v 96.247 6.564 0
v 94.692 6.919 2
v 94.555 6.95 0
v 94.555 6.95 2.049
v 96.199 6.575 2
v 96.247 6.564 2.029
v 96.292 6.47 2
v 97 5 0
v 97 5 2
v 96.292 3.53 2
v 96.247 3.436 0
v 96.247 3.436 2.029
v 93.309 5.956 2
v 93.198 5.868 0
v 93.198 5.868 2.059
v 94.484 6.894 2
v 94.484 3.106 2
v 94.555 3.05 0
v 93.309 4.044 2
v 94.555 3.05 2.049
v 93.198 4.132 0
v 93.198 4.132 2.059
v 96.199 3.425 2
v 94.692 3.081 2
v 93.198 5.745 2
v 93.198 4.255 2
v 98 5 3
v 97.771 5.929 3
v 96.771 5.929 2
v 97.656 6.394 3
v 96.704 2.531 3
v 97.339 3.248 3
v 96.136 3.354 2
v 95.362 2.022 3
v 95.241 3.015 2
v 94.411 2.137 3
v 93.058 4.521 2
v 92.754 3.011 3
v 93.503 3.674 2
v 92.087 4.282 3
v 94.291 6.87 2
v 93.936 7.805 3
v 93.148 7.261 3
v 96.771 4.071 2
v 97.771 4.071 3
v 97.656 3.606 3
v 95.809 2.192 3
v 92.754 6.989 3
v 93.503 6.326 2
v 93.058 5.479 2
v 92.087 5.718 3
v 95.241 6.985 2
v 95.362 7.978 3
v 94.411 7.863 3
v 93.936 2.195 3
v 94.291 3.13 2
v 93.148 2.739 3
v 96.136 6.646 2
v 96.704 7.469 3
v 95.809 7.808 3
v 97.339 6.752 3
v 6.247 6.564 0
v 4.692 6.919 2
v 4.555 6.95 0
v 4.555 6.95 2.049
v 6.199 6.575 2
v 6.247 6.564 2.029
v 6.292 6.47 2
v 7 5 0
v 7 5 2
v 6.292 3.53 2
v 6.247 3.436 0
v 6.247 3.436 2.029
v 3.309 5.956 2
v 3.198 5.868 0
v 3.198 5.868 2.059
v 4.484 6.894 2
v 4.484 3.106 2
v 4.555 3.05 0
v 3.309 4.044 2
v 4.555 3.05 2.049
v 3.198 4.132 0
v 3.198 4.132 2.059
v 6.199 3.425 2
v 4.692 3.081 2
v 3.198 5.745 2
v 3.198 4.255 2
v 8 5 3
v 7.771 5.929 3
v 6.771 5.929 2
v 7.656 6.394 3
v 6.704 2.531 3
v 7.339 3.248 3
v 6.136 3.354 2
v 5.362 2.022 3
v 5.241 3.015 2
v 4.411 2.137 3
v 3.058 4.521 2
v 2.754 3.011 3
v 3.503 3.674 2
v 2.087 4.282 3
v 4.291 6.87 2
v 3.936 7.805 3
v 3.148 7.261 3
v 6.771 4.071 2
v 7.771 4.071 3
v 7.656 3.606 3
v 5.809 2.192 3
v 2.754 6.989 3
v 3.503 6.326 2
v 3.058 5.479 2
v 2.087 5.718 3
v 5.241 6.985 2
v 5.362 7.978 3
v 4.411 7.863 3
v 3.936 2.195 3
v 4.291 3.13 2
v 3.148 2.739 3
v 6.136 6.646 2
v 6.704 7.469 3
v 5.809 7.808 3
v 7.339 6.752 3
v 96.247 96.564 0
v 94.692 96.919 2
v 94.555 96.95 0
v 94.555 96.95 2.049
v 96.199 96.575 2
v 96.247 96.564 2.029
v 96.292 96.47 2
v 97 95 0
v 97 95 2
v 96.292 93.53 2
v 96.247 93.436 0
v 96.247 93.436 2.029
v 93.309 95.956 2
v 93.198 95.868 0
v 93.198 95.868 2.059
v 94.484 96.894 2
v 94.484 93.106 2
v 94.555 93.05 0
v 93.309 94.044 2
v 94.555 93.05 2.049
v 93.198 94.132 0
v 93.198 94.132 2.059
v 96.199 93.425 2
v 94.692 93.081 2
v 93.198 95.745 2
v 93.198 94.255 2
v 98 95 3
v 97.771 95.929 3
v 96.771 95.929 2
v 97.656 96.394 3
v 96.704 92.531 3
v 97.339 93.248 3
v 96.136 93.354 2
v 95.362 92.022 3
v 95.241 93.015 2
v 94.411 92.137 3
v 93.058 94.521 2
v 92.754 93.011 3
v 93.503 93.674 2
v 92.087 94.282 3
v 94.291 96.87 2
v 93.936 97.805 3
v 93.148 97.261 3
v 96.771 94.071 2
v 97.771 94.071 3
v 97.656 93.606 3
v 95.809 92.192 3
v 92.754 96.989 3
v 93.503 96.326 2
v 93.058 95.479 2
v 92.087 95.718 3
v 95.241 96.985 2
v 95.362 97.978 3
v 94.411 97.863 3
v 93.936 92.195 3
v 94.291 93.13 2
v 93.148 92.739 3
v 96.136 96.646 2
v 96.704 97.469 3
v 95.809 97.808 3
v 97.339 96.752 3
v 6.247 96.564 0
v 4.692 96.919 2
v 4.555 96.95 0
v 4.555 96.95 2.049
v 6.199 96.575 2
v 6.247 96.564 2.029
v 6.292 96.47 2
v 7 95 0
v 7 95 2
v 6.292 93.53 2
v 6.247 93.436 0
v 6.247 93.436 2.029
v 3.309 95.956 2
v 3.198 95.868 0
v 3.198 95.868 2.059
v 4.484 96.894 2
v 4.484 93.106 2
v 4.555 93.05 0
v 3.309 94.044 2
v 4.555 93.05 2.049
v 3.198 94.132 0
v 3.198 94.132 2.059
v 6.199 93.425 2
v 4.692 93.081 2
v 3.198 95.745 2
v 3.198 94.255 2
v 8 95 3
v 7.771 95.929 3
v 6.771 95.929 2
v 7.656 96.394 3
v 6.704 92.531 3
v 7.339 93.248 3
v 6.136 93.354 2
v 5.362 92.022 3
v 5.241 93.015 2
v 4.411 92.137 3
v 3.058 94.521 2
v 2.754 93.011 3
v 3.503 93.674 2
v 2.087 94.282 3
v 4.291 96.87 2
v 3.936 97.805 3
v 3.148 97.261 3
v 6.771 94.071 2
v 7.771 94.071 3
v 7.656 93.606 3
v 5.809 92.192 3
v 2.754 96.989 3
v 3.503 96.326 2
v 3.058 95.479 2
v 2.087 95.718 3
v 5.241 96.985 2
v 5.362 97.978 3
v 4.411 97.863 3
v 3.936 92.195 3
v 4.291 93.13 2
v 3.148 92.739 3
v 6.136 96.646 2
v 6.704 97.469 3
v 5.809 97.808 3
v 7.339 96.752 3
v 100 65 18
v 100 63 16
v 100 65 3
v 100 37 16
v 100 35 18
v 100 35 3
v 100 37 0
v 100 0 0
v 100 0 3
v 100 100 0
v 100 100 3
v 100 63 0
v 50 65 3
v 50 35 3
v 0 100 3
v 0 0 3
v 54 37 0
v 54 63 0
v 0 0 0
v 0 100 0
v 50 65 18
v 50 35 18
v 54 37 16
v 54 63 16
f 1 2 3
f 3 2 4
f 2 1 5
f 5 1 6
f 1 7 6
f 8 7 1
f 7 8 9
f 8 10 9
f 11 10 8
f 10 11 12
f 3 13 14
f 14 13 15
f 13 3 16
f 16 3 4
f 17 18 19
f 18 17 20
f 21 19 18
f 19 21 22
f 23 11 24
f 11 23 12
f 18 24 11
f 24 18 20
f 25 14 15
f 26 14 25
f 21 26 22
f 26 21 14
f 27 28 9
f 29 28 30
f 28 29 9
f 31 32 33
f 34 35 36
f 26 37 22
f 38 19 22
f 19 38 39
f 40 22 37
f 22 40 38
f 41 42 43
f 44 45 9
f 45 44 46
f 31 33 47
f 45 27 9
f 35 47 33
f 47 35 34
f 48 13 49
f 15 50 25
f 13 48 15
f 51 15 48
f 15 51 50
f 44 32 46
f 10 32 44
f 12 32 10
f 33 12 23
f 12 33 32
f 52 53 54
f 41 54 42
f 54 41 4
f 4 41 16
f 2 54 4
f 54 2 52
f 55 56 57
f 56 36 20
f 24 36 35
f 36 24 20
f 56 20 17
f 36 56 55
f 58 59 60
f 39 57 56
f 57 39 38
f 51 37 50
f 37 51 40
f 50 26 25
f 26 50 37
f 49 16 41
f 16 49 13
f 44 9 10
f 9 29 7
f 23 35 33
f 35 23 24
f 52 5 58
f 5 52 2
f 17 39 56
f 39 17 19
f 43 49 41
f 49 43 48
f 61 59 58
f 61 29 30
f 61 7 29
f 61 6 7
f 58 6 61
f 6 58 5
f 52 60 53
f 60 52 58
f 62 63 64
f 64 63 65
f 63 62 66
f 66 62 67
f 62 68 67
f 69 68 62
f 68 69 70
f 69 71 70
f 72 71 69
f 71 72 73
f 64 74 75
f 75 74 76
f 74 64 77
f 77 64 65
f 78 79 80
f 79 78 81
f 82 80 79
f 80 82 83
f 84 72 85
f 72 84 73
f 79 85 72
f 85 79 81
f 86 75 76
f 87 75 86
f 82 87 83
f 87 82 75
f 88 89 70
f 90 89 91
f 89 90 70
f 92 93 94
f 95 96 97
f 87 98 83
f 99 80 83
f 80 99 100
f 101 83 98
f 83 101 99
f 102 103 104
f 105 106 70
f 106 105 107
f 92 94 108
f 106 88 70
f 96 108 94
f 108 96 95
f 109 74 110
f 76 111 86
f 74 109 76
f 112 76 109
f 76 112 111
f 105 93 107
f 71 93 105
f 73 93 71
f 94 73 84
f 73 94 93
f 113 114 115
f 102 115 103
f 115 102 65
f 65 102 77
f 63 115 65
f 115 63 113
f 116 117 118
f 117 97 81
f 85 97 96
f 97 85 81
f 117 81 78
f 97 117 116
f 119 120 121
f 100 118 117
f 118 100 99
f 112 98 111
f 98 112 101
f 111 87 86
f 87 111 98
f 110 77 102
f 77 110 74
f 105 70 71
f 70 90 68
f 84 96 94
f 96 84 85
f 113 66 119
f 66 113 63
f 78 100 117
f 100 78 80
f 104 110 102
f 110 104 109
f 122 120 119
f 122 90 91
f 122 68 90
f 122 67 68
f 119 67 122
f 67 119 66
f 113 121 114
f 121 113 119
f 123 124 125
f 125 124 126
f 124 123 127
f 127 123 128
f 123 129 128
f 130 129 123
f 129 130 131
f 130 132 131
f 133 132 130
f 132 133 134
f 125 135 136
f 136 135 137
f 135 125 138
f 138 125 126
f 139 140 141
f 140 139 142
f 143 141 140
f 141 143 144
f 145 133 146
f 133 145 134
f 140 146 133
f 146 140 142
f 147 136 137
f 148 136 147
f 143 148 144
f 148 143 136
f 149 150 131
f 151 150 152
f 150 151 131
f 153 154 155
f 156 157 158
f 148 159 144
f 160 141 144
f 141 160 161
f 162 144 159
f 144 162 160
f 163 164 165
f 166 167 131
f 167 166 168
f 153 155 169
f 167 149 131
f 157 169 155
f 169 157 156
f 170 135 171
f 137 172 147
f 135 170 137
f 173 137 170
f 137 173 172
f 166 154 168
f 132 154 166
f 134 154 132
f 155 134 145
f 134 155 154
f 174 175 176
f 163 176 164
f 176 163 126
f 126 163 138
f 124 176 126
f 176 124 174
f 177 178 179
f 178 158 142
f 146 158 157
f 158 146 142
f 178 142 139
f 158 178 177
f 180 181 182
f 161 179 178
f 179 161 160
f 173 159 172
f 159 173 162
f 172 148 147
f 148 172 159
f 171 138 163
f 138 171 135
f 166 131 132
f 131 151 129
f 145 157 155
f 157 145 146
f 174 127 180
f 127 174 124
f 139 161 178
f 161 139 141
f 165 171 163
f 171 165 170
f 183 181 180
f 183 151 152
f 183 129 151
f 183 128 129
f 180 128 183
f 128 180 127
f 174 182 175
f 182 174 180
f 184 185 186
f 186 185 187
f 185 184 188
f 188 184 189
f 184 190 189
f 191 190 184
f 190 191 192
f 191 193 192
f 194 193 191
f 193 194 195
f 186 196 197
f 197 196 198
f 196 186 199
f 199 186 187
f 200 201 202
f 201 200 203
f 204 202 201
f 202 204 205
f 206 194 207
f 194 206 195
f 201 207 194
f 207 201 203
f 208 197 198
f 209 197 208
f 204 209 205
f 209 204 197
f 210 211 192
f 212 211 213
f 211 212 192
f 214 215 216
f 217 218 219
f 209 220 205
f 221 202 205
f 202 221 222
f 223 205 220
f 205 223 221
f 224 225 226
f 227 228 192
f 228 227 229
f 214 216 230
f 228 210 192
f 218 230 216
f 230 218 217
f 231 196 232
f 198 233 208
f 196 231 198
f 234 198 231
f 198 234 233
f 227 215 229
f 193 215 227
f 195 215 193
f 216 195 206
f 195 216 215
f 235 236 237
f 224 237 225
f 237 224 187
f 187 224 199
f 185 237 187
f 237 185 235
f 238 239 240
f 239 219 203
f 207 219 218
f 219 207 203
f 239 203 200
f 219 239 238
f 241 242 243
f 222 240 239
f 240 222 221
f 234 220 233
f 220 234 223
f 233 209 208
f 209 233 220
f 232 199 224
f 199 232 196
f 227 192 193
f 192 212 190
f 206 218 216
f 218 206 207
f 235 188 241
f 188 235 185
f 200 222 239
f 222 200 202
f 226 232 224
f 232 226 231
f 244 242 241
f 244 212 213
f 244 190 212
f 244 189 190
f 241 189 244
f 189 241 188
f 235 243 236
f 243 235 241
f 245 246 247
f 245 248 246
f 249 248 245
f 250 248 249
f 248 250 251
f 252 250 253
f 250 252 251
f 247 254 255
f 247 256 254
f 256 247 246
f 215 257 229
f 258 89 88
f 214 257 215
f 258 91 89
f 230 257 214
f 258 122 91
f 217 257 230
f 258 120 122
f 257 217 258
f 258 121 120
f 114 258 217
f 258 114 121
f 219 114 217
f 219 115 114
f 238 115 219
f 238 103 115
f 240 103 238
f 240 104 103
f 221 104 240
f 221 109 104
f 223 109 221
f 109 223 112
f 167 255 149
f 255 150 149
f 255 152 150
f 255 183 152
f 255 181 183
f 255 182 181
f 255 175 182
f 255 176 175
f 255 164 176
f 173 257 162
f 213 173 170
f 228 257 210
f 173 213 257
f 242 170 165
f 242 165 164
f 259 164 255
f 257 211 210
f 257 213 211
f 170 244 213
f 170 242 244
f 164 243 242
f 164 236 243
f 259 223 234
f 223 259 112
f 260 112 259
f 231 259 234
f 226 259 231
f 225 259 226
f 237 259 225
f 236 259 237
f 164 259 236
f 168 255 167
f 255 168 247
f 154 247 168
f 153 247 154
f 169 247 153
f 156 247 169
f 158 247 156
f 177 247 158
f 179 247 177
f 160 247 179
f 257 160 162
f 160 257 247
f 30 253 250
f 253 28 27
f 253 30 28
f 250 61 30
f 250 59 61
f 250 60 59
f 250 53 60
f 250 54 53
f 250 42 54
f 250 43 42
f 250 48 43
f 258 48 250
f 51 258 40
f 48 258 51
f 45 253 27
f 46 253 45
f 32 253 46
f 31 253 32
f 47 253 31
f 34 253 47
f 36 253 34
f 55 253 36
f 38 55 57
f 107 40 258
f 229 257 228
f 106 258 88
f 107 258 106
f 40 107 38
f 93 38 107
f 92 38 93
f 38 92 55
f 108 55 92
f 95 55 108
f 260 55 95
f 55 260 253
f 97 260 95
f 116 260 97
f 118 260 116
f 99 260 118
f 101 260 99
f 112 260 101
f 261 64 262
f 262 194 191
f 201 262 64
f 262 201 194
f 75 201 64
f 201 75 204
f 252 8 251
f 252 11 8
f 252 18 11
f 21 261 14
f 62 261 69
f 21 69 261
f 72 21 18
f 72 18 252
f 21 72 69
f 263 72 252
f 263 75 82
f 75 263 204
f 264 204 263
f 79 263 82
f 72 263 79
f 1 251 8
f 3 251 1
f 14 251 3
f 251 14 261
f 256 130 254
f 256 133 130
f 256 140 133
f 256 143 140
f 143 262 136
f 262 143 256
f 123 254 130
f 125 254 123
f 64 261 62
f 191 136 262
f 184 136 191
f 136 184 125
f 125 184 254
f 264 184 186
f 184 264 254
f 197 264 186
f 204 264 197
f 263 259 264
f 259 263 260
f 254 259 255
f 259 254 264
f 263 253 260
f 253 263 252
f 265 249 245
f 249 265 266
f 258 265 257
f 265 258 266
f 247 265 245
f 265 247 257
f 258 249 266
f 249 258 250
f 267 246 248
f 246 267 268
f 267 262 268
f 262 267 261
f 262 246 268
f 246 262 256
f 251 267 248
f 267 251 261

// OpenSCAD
module screwHole(r1,h1,r2,h2){
       // r1 rad bottom of cone and the bolt hole
       // r2 rad top of cone
       // h1 full height of screw + cone
       // h2 height of cone
    
       // shaft first
      cylinder(r=r1,h=h1);
       // cone second
      translate([0,0,h1-h2]) cylinder(r1=r1, r2=r2, h=h2);
}

module base()
{
union() {
    difference() {
        cube([100,100,3]);
        translate([95,5,-6]) screwHole (2,10,4,2);
        translate([5,5,-6]) screwHole (2,10,4,2);
        translate([95,95,-6]) screwHole (2,10,4,2);
        translate([5,95,-6]) screwHole (2,10,4,2);
    }
    translate([50,35,3]) cube([50,30,15]);
}
}


difference() {
    base();
   translate([54,37,-4])
   cube([47,26,20]);
}
